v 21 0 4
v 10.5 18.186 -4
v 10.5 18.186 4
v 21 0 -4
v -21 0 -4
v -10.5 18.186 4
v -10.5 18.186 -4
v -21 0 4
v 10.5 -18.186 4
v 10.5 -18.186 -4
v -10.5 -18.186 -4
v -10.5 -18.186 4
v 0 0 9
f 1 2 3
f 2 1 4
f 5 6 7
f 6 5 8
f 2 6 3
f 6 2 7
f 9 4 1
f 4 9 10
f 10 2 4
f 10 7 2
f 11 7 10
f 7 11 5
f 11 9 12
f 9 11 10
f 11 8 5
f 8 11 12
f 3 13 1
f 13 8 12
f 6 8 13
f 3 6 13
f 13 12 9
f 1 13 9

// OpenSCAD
union() {
	translate(v = [0, 0, 0]) {
		rotate(a = [0, 0, 0]) {
			cylinder($fn = 6, center = true, h = 8, r1 = 21, r2 = 21);
		}
	}
	translate(v = [0, 0, 6.5000000000]) {
		rotate(a = [0, 0, 0]) {
			cylinder($fn = 6, center = true, h = 5, r1 = 21, r2 = 0);
		}
	}
}
/***********************************************
*********      SolidPython code:      **********
************************************************
 
from gen_block import make_base

__author__ = 'Mark Weinreuter'

from solid import scad_render_to_file

from config import *

tile_blocker_h_mm = 5
top = CY(r1=block_r_mm, r2=0, h=tile_blocker_h_mm, segments=6)

tile_blocker = make_base()
top.bottom = block_base_h_mm/2
tile_blocker += top
scad_render_to_file(tile_blocker, "scad/tile_blocker.scad")
 
 
************************************************/
